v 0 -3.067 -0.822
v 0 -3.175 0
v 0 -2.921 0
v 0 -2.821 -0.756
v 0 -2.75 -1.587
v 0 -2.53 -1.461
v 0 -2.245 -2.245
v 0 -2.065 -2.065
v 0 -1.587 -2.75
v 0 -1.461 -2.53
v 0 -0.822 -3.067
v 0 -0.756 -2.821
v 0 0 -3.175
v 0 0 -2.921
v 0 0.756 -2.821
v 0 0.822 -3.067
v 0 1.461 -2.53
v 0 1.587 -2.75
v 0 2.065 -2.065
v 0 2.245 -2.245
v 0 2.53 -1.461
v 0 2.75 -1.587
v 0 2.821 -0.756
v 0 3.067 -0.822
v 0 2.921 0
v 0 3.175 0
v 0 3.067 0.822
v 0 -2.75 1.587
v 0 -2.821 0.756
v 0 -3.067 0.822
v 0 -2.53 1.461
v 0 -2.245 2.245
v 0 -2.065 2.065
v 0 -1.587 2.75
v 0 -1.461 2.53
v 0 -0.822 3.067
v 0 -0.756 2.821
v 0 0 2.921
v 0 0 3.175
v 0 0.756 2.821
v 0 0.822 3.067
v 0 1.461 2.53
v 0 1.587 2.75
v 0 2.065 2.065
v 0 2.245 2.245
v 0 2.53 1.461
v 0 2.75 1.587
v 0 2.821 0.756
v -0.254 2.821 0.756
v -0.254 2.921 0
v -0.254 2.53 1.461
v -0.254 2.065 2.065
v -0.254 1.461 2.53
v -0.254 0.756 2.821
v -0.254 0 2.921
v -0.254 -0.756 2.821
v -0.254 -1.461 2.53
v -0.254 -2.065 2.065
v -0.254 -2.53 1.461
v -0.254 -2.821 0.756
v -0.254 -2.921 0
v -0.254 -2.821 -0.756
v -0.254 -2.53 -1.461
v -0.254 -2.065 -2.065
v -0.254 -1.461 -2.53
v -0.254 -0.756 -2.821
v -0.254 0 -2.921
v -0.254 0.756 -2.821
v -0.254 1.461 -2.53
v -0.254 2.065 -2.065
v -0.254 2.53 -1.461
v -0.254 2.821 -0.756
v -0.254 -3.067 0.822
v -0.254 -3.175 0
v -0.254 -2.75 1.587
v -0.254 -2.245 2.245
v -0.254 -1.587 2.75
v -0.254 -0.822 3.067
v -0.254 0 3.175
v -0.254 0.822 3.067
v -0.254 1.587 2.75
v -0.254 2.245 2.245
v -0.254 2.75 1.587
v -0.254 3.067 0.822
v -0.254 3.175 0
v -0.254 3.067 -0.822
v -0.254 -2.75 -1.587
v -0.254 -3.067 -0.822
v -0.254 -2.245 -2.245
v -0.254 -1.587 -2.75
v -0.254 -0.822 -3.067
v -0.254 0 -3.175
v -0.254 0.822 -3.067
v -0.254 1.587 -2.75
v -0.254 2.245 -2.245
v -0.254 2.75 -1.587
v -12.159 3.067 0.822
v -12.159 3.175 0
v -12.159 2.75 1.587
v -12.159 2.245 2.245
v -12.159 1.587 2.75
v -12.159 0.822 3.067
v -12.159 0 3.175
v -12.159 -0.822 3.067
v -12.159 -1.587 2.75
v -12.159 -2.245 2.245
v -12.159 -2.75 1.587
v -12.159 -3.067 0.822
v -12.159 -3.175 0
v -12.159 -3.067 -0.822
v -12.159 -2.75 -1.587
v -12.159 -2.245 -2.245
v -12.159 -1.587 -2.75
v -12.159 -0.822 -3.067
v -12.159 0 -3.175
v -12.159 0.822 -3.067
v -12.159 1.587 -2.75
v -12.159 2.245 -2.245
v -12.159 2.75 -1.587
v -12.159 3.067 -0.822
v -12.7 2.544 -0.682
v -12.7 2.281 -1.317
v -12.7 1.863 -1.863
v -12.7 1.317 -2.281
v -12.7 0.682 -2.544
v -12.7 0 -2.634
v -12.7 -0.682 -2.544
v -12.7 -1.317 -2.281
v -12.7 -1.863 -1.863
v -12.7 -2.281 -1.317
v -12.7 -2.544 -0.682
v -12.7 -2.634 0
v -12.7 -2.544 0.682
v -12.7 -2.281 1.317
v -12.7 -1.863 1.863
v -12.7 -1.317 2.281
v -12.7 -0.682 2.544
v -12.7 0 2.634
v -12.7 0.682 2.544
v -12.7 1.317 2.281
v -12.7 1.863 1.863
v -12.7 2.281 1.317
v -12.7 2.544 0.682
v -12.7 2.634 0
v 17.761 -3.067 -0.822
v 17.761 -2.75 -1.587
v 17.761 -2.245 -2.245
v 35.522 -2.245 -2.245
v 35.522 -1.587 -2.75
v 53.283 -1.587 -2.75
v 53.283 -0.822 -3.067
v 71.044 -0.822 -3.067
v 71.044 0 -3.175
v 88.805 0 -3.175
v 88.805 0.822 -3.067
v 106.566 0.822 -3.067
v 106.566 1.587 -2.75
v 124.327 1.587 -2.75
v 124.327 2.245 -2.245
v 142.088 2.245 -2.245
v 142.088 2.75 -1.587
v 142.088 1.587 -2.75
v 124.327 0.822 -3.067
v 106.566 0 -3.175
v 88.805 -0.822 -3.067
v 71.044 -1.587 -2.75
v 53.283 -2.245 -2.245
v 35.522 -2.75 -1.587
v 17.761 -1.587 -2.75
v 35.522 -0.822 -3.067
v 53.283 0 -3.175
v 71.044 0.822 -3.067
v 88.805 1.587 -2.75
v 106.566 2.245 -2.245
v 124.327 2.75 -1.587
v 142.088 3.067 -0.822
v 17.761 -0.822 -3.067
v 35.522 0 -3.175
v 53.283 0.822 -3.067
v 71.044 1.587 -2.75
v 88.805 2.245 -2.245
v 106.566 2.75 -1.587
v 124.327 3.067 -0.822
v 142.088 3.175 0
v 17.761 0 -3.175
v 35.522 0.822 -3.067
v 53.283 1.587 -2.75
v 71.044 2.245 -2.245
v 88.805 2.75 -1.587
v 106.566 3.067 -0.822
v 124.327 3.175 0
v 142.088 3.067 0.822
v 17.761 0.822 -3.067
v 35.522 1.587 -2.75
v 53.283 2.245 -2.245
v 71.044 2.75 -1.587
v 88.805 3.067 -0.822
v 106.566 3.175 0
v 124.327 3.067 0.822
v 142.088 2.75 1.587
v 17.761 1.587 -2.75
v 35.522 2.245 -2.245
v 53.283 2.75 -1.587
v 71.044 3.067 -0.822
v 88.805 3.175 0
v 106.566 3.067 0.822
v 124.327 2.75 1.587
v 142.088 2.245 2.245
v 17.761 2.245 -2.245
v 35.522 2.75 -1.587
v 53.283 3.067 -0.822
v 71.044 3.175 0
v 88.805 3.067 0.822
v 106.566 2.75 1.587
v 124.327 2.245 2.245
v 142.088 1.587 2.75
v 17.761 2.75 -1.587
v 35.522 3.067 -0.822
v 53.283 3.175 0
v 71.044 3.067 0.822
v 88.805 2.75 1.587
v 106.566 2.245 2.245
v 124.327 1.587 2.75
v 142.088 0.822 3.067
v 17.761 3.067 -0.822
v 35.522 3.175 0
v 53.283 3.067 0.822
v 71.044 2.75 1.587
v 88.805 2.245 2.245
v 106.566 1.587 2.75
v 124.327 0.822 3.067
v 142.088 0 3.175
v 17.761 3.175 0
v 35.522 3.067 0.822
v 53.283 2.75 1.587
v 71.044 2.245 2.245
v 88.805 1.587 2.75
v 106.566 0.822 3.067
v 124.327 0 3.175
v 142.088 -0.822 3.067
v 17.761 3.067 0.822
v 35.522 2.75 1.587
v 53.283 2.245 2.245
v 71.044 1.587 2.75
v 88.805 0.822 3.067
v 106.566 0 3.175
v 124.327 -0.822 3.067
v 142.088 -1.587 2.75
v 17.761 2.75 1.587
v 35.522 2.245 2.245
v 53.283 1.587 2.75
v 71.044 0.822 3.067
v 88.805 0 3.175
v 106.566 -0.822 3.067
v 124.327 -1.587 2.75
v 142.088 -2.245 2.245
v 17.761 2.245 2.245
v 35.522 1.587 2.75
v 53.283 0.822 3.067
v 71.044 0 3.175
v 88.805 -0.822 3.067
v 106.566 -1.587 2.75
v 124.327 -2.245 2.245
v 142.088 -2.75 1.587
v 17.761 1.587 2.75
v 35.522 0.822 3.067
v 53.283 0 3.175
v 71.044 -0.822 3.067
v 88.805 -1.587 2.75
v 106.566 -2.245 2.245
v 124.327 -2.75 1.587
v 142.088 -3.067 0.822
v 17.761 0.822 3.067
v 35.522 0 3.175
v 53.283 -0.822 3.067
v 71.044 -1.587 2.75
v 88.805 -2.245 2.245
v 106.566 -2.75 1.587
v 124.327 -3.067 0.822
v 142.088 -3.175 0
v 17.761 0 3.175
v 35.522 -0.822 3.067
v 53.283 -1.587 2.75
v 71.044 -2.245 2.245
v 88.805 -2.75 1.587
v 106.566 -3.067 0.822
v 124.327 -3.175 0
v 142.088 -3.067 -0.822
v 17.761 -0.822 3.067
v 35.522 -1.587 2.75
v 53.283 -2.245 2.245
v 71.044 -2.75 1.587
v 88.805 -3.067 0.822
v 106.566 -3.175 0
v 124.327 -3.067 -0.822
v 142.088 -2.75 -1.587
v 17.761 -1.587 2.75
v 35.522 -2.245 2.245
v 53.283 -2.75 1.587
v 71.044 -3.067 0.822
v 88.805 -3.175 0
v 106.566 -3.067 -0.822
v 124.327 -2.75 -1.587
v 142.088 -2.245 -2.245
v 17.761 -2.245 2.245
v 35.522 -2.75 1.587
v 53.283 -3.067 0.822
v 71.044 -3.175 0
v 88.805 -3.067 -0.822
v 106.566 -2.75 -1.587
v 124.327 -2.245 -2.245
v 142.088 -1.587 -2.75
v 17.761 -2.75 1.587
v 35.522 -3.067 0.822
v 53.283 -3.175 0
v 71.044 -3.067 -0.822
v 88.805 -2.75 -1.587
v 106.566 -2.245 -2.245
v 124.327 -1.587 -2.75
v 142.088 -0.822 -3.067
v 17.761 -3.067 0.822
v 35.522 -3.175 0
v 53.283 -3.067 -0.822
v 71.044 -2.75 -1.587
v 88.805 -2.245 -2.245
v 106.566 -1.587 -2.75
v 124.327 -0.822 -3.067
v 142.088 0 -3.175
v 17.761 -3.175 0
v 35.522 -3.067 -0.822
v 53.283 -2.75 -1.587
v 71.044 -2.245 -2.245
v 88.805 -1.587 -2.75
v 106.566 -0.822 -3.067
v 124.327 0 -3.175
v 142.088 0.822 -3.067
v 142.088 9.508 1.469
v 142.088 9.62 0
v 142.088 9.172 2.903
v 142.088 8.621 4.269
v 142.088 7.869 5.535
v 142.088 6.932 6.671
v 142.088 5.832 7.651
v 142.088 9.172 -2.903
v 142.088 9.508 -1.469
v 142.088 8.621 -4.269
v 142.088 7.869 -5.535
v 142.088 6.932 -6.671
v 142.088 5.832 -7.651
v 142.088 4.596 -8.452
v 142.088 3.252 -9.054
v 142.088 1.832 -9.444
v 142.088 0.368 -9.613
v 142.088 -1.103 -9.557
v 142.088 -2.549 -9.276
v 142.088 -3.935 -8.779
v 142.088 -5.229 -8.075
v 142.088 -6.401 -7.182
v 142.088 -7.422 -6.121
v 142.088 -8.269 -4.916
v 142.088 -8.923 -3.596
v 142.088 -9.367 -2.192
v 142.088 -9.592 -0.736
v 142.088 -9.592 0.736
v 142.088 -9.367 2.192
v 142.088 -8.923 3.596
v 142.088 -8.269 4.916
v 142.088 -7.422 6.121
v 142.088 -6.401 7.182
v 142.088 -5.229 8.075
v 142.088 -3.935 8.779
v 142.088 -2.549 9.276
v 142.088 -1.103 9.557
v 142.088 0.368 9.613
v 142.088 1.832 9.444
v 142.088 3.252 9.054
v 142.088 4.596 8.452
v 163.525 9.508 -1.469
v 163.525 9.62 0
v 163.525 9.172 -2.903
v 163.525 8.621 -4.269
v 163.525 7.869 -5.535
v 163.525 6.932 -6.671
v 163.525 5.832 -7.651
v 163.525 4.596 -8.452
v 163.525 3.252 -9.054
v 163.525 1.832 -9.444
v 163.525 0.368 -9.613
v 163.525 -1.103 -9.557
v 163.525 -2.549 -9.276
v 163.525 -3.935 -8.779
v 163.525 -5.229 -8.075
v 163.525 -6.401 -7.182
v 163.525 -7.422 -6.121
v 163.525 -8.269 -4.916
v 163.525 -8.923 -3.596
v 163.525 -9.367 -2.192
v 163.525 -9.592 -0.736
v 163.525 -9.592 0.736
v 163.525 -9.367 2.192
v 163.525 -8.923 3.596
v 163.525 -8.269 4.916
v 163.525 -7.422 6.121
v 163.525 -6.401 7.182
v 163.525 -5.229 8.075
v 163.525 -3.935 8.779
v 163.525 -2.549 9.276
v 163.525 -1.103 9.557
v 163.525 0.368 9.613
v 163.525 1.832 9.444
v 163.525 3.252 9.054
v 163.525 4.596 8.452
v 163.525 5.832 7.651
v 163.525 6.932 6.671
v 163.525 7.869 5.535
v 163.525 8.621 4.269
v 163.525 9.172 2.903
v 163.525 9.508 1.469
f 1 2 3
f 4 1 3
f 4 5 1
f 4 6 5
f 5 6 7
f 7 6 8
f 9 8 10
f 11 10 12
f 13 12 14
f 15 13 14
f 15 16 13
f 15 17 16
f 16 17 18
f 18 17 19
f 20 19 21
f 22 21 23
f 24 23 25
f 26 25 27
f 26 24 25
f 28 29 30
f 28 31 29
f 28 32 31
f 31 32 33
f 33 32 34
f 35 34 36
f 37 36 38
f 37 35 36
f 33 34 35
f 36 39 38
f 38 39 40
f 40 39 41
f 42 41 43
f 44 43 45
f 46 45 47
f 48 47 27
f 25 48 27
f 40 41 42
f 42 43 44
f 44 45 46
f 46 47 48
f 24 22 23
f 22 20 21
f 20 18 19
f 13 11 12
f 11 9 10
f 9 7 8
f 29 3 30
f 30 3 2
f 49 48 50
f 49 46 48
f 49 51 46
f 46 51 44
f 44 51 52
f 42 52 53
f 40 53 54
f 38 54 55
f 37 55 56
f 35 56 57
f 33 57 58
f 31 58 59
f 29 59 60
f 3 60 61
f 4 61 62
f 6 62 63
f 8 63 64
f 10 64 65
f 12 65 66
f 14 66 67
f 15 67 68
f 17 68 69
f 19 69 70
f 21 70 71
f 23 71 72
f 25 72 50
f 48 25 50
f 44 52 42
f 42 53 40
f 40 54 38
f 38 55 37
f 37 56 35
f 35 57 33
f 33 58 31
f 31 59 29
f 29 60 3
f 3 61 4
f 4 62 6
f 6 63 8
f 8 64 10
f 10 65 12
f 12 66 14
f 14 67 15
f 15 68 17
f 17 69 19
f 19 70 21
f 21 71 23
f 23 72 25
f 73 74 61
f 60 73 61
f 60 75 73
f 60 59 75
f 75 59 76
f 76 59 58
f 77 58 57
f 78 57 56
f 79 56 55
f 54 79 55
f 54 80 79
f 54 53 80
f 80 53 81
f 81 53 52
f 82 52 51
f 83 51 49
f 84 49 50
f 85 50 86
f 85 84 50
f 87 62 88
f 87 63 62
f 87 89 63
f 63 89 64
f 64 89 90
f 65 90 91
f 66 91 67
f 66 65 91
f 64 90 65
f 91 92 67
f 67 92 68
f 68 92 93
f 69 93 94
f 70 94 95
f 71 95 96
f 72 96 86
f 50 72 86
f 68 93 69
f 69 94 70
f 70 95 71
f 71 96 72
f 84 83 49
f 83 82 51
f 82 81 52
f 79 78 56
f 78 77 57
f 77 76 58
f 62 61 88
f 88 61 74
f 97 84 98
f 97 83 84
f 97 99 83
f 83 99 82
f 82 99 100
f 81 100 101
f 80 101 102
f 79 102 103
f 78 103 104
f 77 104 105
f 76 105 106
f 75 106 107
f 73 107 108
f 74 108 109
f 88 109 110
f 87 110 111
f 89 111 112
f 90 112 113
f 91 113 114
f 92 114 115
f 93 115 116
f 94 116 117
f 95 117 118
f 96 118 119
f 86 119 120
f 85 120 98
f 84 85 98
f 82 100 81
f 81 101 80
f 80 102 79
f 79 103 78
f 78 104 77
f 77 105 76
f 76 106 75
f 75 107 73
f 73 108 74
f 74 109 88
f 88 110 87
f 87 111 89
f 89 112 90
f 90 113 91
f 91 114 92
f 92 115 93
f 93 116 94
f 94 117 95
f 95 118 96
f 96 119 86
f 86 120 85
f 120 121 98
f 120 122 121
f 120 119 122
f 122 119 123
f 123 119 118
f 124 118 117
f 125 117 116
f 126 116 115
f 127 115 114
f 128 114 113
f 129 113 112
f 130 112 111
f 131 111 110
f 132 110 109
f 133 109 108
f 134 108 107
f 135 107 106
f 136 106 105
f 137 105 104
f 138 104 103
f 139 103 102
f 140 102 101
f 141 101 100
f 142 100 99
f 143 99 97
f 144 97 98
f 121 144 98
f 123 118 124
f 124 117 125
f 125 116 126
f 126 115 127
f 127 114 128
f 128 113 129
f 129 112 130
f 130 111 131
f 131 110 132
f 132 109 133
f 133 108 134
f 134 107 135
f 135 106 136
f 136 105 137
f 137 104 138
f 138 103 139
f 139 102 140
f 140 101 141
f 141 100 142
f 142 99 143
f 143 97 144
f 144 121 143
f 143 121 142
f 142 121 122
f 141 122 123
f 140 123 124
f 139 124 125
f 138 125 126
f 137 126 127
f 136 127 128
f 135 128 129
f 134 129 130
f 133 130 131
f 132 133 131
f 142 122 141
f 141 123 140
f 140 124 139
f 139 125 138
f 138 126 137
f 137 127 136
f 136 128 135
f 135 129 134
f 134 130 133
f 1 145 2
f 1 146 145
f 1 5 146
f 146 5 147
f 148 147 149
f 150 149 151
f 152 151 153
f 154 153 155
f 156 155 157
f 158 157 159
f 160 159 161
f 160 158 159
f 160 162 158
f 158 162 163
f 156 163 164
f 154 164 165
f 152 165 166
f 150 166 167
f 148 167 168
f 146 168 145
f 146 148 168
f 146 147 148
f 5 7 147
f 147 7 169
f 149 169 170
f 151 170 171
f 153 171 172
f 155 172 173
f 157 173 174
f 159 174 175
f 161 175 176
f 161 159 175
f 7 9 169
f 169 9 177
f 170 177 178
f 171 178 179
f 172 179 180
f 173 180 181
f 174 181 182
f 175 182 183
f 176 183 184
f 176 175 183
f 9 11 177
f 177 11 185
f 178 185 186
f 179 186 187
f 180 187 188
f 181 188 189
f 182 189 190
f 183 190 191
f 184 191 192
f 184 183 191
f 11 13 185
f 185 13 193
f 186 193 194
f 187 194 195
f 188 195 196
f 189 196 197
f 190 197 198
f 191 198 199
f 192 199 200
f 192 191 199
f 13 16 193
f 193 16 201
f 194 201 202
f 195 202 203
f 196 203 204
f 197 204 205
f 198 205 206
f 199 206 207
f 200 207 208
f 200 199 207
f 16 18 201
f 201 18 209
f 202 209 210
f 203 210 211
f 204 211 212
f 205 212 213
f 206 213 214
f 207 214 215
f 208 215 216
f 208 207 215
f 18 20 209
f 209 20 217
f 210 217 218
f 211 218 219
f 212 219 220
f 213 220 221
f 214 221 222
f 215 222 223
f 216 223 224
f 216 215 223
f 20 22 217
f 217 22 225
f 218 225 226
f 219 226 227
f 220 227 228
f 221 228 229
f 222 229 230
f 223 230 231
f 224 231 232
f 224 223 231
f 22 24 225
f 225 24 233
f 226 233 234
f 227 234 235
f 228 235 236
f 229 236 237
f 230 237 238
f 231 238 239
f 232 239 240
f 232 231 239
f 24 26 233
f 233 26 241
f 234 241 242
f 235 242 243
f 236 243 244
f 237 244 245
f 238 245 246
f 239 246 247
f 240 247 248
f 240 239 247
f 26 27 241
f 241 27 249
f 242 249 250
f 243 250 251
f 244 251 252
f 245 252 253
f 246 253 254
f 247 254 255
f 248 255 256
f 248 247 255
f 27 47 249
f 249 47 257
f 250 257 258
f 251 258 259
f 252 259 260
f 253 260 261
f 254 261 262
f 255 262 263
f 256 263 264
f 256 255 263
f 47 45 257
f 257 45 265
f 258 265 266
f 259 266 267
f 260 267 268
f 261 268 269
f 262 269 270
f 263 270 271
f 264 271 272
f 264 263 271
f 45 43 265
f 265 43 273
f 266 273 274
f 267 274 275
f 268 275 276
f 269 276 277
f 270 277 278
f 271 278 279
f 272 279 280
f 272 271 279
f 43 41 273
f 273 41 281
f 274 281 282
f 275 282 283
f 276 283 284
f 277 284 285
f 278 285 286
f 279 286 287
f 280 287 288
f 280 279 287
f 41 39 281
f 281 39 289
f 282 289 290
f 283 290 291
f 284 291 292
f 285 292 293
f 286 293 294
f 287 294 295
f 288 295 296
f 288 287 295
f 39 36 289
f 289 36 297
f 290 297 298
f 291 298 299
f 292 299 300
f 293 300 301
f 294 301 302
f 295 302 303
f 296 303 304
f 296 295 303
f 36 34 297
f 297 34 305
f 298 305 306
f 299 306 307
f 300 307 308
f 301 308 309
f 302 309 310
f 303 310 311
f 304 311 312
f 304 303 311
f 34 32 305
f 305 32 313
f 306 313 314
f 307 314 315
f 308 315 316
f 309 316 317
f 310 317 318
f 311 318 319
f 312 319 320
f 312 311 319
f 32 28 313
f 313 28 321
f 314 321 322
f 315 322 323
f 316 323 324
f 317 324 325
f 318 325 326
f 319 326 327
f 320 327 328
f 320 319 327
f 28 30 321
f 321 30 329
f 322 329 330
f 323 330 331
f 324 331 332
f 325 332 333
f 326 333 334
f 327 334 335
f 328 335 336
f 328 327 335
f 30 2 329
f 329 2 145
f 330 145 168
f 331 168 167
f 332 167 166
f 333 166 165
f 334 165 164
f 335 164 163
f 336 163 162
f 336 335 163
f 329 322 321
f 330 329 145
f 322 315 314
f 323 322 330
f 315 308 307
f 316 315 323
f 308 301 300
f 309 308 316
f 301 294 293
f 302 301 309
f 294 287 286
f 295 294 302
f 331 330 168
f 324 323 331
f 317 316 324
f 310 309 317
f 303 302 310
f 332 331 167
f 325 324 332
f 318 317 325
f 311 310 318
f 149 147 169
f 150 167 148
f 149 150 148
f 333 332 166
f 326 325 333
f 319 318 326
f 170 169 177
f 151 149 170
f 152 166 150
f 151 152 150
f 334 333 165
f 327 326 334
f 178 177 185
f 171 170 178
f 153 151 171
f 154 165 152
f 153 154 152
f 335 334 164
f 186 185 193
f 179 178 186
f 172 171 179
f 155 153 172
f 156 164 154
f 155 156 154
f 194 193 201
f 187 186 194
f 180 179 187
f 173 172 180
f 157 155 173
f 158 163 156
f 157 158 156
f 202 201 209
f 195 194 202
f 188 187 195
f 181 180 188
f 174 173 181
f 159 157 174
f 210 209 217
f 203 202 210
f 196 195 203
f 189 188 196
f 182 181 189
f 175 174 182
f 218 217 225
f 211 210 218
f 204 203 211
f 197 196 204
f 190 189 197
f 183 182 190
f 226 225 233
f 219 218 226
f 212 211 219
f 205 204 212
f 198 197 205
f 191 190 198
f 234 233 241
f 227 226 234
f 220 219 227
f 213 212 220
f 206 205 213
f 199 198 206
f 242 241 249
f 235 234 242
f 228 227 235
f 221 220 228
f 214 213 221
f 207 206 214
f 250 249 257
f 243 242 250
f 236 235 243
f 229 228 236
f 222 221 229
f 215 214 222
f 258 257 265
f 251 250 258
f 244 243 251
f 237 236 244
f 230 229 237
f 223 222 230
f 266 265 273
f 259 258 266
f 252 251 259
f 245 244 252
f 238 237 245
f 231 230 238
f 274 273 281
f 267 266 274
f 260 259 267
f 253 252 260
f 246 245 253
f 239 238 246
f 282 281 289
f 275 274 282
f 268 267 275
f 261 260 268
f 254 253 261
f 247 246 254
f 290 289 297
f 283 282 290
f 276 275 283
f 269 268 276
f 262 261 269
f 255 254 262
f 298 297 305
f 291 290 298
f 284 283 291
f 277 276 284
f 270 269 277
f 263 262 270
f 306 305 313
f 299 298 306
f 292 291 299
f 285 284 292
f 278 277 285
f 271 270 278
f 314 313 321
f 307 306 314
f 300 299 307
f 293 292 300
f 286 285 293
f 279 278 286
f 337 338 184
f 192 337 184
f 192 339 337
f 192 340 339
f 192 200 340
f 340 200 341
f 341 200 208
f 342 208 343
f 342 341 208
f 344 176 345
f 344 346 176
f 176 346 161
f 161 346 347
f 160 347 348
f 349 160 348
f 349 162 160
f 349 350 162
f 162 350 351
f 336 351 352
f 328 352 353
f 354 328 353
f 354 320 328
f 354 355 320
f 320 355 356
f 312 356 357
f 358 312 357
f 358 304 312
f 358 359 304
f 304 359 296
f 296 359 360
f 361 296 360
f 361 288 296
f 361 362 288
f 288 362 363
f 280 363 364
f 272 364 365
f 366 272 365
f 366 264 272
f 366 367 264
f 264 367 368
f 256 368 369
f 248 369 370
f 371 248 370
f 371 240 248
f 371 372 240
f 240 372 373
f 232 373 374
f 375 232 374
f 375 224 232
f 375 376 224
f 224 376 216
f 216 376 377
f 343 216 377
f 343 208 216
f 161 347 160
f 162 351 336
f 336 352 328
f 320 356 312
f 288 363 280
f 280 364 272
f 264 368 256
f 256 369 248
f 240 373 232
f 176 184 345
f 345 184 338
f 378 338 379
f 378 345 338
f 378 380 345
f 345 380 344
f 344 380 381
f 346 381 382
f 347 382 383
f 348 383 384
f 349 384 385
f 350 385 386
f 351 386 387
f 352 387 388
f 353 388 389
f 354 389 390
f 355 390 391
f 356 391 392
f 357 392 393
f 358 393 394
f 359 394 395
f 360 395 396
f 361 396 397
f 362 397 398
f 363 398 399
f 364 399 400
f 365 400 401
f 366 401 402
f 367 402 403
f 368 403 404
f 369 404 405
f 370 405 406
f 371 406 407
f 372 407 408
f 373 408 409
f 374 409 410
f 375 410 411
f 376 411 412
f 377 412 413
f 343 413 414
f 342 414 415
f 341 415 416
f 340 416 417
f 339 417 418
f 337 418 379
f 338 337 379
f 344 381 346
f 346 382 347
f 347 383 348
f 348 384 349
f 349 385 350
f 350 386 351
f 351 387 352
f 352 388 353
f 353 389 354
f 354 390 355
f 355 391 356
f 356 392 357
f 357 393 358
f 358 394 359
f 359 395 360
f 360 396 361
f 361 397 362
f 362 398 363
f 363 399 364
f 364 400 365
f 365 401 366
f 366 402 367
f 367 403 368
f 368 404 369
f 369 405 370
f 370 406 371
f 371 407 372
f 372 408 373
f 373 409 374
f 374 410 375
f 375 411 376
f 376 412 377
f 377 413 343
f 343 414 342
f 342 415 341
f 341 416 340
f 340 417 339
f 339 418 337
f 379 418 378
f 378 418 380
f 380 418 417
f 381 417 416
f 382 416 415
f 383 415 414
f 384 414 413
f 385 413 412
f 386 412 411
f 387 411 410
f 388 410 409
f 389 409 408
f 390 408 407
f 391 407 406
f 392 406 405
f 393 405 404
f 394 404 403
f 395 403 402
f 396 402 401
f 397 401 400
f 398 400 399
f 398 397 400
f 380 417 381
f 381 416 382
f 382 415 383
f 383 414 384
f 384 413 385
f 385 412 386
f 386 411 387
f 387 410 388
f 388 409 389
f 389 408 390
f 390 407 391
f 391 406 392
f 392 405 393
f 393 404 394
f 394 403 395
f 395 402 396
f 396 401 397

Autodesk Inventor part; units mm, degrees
sketch "Sketch_1" plane through (0, 0, 0) normal (0, 0, 1) x (1, 0, 0)
  line L0 (163.5252, 0) -> (0, 0)
  line L1 (0, 0) -> (0, 3.175)
  line L2 (0, 3.175) -> (142.0876, 3.175)
  line L3 (142.0876, 3.175) -> (142.0876, 9.6203)
  line L4 (142.0876, 9.6203) -> (163.5252, 9.6203)
  line L5 (163.5252, 9.6203) -> (163.5252, 0)
  line L6 (163.5252, 0) -> (0, 0)
revolve "Revolution1" add sketch "Sketch_1" angle 360 about axis through (163.5252, 0, 0) along (1, 0, 0)
sketch "Sketch_3" plane through (0, 0, 0) normal (0, 0, 1) x (1, 0, 0)
  line L0 (0, 0) -> (-12.7, 0)
  line L1 (-12.7, 0) -> (-12.7, 2.634)
  line L2 (-12.7, 2.634) -> (-12.159, 3.175)
  line L3 (-12.159, 3.175) -> (0, 3.175)
  line L4 (0, 3.175) -> (0, 0)
  line L5 (0, 0) -> (-12.7, 0)
revolve "Revolution2" add sketch "Sketch_3" angle 360 about axis through (0, 0, 0) along (1, 0, 0)
thread "Thread1" size "1/4-28 UNF" class "3A" standard "ANSI Unified Screw Threads" length 12.7 offset 142.0876
sketch "Sketch_30" plane through (0, 0, 0) normal (0, 0, 1) x (1, 0, 0)
  line L0 (0, 0) -> (-0.254, 0)
  line L1 (-0.254, 3.429) -> (-0.254, 2.921)
  line L2 (-0.254, 2.921) -> (0, 2.921)
  line L3 (0, 2.921) -> (0, 3.429)
  line L4 (0, 3.429) -> (-0.254, 3.429)
revolve "Revolution3" cut sketch "Sketch_30" angle 360 about axis through (0, 0, 0) along (1, 0, 0)
ref_plane "rod_cp_XY" through (0, 0, 0) normal (1, 0, 0) x (0, 0, -1)
ref_plane "rod_cp_YZ" through (0, 0, 0) normal (0, 0, -1) x (0, 1, 0)
ref_plane "rod_cp_ZX" through (0, 0, 0) normal (0, 1, 0) x (1, 0, 0)
ref_plane "to_rod_clevis_XY" through (-12.7, 0, 0) normal (1, 0, 0) x (0, 0, -1)
ref_plane "to_rod_clevis_YZ" through (-12.7, 0, 0) normal (0, 0, -1) x (0, 1, 0)
ref_plane "to_rod_clevis_ZX" through (-12.7, 0, 0) normal (0, 1, 0) x (1, 0, 0)
ref_plane "rl2_XY" through (0, 0, 0) normal (1, 0, 0) x (0, 0, -1)
ref_plane "rl2_YZ" through (0, 0, 0) normal (0, 0, -1) x (0, 1, 0)
ref_plane "rl2_ZX" through (0, 0, 0) normal (0, 1, 0) x (1, 0, 0)
ref_plane "rl1_XY" through (-12.7, 0, 0) normal (1, 0, 0) x (0, 0, -1)
ref_plane "rl1_YZ" through (-12.7, 0, 0) normal (0, 0, -1) x (0, 1, 0)
ref_plane "rl1_ZX" through (-12.7, 0, 0) normal (0, 1, 0) x (1, 0, 0)
ref_plane "thd1_XY" through (-12.7, 3.175, 0) normal (1, 0, 0) x (0, 0, -1)
ref_plane "thd1_YZ" through (-12.7, 3.175, 0) normal (0, 0, -1) x (0, 1, 0)
ref_plane "thd1_ZX" through (-12.7, 3.175, 0) normal (0, 1, 0) x (1, 0, 0)
ref_plane "thd2_XY" through (-12.7, -3.175, 0) normal (1, 0, 0) x (0, 0, -1)
ref_plane "thd2_YZ" through (-12.7, -3.175, 0) normal (0, 0, -1) x (0, 1, 0)
ref_plane "thd2_ZX" through (-12.7, -3.175, 0) normal (0, 1, 0) x (1, 0, 0)
ref_plane "dia1_XY" through (0, 3.175, 0) normal (1, 0, 0) x (0, 0, -1)
ref_plane "dia1_YZ" through (0, 3.175, 0) normal (0, 0, -1) x (0, 1, 0)
ref_plane "dia1_ZX" through (0, 3.175, 0) normal (0, 1, 0) x (1, 0, 0)
ref_plane "dia2_XY" through (0, -3.175, 0) normal (1, 0, 0) x (0, 0, -1)
ref_plane "dia2_YZ" through (0, -3.175, 0) normal (0, 0, -1) x (0, 1, 0)
ref_plane "dia2_ZX" through (0, -3.175, 0) normal (0, 1, 0) x (1, 0, 0)
ref_plane "hh1_XY" through (193.6496, 0, 0) normal (0, 0, 1) x (1, 0, 0)
ref_plane "hh1_YZ" through (193.6496, 0, 0) normal (1, 0, 0) x (0, 1, 0)
ref_plane "hh1_ZX" through (193.6496, 0, 0) normal (0, 1, 0) x (0, 0, 1)
ref_plane "hh2_XY" through (200.0504, 0, 0) normal (0, 0, 1) x (1, 0, 0)
ref_plane "hh2_YZ" through (200.0504, 0, 0) normal (1, 0, 0) x (0, 1, 0)
ref_plane "hh2_ZX" through (200.0504, 0, 0) normal (0, 1, 0) x (0, 0, 1)
ref_plane "dia12_XY" through (0, 0, 10.9537) normal (1, 0, 0) x (0, 0, -1)
ref_plane "dia12_YZ" through (0, 0, 10.9537) normal (0, 0, -1) x (0, 1, 0)
ref_plane "dia12_ZX" through (0, 0, 10.9537) normal (0, 1, 0) x (1, 0, 0)
ref_plane "dia22_XY" through (0, 0, -10.9537) normal (1, 0, 0) x (0, 0, -1)
ref_plane "dia22_YZ" through (0, 0, -10.9537) normal (0, 0, -1) x (0, 1, 0)
ref_plane "dia22_ZX" through (0, 0, -10.9537) normal (0, 1, 0) x (1, 0, 0)
properties part number "044-DXP0_rod"
